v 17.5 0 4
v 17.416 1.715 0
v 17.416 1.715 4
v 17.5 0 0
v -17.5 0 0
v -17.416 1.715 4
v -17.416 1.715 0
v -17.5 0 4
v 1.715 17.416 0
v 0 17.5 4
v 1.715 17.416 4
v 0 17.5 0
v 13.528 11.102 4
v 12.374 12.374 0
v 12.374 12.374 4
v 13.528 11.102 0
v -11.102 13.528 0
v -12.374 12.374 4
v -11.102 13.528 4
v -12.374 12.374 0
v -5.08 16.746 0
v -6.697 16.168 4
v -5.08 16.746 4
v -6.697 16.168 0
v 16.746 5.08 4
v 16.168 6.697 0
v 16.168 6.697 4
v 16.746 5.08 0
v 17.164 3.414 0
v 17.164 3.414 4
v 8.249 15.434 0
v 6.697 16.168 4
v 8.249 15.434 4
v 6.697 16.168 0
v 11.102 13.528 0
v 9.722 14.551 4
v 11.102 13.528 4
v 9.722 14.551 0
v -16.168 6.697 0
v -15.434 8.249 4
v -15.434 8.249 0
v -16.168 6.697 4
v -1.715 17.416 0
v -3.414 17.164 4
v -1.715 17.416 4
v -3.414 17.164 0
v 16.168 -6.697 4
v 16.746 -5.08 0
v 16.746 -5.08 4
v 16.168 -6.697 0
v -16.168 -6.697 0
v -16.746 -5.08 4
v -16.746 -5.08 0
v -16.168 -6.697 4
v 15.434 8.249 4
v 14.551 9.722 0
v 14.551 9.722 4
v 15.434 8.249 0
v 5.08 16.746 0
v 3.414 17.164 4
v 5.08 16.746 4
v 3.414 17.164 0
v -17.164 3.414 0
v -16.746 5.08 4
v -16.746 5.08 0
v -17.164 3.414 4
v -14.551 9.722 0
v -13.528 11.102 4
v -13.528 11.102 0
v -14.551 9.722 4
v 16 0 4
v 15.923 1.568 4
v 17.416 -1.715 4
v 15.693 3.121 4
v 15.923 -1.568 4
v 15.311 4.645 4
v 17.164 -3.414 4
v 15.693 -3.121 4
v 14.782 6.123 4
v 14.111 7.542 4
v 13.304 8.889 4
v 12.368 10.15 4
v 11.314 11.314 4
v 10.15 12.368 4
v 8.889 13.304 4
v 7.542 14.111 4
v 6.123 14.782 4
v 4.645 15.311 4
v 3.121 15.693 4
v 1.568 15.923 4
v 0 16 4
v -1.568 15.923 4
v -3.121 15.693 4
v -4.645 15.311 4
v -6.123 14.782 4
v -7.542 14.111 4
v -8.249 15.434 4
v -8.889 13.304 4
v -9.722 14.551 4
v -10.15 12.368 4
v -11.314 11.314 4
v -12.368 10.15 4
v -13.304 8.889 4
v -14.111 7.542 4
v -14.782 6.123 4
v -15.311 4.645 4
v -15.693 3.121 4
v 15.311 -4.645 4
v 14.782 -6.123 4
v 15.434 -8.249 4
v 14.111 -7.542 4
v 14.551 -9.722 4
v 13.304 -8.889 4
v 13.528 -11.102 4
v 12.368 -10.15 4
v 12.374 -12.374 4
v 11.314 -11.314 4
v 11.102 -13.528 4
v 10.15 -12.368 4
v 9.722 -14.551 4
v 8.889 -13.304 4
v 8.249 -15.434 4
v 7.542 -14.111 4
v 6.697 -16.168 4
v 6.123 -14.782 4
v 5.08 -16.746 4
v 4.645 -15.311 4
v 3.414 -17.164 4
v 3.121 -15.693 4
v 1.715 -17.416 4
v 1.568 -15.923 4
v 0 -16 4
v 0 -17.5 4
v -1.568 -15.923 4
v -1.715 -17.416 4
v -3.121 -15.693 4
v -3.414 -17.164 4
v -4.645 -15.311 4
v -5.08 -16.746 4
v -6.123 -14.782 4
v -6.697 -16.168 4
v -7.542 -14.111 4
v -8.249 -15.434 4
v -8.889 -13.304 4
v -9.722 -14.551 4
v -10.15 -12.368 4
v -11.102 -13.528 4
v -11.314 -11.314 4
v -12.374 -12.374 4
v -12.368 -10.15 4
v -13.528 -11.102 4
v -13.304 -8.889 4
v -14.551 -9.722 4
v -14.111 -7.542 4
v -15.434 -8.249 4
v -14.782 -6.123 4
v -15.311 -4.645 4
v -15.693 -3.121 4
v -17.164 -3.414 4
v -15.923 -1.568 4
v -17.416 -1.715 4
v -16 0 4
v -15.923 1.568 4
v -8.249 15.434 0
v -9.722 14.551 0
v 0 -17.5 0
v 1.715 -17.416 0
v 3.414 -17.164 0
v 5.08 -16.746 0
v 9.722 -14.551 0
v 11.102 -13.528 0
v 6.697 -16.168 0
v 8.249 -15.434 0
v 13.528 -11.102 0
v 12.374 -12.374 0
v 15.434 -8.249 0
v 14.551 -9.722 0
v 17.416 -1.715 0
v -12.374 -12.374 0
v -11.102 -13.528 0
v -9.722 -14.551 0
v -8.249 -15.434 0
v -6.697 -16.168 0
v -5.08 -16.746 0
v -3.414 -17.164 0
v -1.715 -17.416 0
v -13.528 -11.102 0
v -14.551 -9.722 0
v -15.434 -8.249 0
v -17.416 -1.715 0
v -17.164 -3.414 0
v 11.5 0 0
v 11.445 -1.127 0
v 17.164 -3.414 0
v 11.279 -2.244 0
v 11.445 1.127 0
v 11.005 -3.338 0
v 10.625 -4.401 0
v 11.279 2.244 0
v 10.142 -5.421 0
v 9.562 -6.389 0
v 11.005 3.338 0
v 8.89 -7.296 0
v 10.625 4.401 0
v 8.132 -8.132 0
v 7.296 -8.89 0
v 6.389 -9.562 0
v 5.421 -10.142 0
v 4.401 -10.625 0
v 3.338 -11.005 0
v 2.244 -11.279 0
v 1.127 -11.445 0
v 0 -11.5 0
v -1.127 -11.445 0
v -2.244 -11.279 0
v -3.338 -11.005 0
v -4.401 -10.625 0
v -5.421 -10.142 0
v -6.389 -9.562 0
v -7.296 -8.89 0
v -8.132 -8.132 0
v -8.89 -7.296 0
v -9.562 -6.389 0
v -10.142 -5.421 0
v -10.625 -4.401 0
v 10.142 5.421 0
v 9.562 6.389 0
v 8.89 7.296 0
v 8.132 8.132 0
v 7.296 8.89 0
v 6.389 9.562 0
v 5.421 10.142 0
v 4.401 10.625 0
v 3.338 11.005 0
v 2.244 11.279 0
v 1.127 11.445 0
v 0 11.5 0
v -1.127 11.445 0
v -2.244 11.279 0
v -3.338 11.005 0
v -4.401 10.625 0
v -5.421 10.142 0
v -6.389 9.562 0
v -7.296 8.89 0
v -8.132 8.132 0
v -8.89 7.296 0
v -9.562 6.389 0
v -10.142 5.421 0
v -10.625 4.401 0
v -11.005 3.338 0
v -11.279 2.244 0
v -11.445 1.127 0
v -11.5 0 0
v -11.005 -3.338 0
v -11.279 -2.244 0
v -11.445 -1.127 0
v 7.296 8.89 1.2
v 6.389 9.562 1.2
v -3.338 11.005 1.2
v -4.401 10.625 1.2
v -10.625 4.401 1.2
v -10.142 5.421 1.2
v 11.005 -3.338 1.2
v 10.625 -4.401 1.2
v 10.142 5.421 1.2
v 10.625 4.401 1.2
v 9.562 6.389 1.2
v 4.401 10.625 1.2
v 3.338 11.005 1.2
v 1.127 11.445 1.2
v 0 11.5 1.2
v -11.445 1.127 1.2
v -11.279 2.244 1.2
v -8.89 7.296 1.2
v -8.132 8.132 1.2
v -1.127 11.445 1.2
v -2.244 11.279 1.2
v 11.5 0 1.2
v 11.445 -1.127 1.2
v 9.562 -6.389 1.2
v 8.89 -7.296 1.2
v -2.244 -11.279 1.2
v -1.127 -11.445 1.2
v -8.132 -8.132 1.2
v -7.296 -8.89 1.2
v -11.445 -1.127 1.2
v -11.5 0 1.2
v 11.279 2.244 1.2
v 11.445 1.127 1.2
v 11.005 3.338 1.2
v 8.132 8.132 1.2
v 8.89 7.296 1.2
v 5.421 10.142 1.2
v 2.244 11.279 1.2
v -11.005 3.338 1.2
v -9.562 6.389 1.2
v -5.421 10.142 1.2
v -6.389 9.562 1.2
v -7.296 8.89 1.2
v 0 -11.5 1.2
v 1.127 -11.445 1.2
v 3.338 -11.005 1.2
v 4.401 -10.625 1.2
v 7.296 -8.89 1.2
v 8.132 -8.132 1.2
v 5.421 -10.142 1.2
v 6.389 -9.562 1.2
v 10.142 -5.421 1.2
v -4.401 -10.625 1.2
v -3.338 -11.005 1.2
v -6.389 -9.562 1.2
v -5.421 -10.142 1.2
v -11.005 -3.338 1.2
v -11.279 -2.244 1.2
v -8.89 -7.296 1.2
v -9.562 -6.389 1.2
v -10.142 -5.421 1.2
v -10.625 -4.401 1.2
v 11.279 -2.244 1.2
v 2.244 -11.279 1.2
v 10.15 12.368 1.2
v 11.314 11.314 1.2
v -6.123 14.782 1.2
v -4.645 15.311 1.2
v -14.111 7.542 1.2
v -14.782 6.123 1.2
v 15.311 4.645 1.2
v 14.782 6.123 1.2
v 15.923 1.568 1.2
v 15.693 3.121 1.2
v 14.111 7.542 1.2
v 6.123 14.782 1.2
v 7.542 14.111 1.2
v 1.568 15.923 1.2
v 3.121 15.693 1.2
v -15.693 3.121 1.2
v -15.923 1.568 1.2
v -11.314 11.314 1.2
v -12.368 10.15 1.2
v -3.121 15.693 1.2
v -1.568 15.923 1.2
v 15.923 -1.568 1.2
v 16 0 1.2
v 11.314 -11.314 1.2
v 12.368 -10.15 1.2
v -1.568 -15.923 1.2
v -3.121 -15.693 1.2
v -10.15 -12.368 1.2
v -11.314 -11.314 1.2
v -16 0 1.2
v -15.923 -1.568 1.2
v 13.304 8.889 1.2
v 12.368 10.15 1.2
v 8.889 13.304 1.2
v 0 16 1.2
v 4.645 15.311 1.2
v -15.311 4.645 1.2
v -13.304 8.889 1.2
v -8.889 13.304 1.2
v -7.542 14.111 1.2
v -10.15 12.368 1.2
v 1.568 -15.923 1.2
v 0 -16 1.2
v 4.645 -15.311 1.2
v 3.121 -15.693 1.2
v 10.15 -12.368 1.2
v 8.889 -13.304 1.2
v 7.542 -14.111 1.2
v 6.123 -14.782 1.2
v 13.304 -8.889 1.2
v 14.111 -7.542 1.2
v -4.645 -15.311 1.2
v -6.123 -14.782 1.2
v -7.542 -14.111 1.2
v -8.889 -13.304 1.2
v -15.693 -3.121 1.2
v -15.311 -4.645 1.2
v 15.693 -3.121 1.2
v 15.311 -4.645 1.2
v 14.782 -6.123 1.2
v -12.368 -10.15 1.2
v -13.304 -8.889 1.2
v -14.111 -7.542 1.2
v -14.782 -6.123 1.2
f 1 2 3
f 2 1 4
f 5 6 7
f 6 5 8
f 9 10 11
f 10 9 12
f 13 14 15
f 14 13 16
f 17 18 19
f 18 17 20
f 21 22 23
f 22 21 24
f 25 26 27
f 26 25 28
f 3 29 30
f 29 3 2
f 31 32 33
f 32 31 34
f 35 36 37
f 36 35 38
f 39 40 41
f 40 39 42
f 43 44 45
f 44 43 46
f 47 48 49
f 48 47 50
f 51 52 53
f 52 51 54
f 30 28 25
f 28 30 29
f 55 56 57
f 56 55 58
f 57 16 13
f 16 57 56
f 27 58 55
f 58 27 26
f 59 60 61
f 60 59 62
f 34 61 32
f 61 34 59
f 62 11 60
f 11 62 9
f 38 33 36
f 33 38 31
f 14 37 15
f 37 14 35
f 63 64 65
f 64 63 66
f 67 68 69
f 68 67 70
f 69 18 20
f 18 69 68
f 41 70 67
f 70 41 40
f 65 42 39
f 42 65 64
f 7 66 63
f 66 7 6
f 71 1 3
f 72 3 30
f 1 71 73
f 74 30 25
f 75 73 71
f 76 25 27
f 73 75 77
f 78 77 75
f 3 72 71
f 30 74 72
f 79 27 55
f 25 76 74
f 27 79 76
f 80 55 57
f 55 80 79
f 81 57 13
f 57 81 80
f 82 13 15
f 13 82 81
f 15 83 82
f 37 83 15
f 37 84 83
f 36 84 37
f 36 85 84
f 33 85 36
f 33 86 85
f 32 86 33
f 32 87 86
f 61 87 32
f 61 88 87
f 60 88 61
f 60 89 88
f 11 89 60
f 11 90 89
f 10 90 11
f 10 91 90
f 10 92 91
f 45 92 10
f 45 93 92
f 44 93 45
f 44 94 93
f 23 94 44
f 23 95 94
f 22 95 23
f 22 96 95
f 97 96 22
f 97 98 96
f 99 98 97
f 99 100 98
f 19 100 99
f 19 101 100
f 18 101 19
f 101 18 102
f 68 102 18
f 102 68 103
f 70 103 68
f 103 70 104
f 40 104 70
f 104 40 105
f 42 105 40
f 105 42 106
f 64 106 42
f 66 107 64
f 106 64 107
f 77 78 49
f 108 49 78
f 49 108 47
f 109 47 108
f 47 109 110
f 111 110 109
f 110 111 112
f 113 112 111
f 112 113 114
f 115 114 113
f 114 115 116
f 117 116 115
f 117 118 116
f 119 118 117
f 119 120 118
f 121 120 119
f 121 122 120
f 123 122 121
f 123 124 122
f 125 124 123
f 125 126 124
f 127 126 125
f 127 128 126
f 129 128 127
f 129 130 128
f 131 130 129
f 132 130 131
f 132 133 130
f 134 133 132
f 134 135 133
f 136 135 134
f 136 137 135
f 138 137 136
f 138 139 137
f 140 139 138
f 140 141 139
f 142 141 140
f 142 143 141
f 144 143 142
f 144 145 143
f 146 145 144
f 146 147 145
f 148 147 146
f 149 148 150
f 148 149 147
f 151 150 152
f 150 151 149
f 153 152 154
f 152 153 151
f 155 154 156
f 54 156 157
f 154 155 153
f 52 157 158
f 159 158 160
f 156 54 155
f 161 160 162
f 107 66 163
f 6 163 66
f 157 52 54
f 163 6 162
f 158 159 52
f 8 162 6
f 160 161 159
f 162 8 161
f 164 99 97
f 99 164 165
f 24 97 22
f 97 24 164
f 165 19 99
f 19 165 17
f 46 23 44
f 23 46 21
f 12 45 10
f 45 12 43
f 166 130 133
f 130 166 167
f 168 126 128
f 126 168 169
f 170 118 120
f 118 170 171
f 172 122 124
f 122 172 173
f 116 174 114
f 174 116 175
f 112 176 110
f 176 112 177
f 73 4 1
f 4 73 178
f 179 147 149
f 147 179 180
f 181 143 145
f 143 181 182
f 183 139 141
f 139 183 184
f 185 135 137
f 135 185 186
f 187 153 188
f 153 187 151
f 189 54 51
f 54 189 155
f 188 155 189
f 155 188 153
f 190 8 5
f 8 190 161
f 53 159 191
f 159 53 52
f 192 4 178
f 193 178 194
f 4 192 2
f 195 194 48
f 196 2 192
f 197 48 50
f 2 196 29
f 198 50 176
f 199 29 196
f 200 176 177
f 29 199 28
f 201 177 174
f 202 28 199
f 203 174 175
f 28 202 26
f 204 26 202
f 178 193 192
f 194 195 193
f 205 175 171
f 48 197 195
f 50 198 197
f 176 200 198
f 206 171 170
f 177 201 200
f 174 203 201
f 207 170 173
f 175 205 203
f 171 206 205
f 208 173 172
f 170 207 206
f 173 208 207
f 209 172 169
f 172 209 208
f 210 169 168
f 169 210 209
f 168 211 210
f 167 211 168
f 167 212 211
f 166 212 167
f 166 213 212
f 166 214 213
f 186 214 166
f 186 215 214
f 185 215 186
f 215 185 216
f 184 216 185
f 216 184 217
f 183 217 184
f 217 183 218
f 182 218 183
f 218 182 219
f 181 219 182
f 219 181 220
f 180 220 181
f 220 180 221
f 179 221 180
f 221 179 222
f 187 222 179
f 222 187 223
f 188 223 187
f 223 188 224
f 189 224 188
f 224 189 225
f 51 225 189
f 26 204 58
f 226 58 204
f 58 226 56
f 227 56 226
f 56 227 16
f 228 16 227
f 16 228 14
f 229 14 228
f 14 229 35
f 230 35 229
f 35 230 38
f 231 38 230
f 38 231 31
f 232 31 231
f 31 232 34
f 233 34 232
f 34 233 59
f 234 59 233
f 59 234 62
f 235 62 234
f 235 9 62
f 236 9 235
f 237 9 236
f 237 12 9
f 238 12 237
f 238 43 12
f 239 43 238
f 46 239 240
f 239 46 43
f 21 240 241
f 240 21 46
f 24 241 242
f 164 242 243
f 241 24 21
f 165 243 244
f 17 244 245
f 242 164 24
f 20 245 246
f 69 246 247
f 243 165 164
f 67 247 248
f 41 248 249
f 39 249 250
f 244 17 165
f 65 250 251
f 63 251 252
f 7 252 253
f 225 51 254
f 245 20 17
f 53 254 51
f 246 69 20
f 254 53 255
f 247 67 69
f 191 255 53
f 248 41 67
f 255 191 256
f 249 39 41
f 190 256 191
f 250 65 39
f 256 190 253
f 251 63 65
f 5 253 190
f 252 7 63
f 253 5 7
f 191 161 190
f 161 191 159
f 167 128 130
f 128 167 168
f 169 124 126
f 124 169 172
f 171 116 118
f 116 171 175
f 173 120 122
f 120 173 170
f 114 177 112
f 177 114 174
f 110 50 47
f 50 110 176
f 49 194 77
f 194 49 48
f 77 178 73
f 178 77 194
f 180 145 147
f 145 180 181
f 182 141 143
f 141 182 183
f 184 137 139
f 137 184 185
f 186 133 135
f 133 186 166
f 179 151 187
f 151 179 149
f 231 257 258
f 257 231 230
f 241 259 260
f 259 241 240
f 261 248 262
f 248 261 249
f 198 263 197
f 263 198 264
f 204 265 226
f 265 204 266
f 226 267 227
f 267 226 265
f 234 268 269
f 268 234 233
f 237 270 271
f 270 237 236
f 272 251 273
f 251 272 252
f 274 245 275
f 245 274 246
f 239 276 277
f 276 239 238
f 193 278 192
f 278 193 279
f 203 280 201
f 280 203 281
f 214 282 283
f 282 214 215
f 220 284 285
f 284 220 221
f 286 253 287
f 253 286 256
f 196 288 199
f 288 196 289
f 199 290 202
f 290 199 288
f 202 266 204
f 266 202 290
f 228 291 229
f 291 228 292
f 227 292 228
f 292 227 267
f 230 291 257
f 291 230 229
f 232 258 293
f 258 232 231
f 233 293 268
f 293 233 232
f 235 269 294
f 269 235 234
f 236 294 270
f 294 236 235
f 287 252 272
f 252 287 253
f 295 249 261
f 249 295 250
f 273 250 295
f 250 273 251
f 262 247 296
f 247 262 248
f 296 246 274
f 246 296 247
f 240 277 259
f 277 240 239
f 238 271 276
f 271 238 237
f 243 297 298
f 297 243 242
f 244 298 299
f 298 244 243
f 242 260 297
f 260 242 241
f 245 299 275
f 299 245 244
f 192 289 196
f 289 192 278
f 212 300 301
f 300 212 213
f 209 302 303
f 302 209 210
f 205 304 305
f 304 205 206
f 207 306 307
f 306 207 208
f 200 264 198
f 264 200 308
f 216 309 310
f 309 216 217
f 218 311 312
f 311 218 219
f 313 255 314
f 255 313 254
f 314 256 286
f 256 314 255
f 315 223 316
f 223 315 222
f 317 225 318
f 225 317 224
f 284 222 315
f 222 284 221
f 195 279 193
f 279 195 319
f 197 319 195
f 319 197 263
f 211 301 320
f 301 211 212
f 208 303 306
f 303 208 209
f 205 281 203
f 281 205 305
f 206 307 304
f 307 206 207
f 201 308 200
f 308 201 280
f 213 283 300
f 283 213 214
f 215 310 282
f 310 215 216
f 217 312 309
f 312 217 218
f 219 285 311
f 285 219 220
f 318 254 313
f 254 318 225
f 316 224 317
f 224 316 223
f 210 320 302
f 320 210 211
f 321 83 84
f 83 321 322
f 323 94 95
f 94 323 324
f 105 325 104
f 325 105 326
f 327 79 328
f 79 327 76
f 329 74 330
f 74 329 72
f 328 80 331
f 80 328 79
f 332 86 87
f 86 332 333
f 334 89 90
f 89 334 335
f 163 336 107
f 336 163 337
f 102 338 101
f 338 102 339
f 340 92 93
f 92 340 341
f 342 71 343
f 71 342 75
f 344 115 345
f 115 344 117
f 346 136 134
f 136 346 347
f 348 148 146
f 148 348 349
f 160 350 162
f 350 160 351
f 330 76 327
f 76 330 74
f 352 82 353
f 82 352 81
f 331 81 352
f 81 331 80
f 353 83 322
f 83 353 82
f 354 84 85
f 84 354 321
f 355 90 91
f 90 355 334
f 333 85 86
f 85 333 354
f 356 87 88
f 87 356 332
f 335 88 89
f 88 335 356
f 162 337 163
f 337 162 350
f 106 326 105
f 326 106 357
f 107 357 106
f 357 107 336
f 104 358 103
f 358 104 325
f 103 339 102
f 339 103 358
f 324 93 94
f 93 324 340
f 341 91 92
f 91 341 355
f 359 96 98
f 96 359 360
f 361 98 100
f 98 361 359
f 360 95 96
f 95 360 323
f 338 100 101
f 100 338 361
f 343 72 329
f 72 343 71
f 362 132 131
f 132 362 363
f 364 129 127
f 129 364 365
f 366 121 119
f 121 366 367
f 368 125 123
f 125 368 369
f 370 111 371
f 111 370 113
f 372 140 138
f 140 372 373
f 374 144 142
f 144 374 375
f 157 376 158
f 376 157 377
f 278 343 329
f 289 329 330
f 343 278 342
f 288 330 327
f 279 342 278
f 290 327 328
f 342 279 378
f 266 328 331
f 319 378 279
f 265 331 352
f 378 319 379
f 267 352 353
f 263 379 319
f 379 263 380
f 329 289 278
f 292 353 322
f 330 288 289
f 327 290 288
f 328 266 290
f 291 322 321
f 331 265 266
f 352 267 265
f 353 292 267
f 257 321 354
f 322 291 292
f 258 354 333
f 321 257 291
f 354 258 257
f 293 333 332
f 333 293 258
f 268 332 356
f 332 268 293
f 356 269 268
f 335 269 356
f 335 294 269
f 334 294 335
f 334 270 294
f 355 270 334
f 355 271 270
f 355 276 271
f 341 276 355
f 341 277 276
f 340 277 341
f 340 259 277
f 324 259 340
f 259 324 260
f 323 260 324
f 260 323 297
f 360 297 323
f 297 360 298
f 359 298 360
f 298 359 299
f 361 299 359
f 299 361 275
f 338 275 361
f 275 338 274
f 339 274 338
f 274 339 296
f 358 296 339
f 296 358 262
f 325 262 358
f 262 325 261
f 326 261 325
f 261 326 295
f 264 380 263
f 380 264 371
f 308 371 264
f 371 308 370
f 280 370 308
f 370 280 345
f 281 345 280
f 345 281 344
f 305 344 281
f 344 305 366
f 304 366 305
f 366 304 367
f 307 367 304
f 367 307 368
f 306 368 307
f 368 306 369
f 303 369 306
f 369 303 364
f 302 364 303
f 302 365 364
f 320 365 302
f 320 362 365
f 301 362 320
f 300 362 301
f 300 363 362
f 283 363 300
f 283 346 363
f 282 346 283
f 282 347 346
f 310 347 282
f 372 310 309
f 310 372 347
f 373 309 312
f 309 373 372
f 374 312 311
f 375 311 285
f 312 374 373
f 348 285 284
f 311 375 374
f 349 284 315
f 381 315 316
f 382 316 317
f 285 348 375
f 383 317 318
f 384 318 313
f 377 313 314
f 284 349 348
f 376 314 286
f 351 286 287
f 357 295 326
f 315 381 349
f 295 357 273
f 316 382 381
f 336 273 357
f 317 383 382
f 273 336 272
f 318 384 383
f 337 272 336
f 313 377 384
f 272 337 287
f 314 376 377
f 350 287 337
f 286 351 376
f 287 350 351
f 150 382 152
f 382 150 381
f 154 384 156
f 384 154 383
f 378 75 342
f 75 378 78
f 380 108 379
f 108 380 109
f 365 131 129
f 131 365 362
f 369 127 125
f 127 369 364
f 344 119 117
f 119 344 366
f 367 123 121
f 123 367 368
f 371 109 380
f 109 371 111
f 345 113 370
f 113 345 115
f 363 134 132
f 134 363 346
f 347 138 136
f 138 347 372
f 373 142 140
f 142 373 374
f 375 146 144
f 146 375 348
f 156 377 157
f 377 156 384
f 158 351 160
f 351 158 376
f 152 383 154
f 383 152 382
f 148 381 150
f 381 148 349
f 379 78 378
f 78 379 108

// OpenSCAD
$fn = 64;

difference() {
    cylinder(d = 35, h = 4);
    cylinder(d = 23, h = 4);
    translate([0, 0, 4 - 2.8])
        cylinder(d = 32, h = 2.8);
}
